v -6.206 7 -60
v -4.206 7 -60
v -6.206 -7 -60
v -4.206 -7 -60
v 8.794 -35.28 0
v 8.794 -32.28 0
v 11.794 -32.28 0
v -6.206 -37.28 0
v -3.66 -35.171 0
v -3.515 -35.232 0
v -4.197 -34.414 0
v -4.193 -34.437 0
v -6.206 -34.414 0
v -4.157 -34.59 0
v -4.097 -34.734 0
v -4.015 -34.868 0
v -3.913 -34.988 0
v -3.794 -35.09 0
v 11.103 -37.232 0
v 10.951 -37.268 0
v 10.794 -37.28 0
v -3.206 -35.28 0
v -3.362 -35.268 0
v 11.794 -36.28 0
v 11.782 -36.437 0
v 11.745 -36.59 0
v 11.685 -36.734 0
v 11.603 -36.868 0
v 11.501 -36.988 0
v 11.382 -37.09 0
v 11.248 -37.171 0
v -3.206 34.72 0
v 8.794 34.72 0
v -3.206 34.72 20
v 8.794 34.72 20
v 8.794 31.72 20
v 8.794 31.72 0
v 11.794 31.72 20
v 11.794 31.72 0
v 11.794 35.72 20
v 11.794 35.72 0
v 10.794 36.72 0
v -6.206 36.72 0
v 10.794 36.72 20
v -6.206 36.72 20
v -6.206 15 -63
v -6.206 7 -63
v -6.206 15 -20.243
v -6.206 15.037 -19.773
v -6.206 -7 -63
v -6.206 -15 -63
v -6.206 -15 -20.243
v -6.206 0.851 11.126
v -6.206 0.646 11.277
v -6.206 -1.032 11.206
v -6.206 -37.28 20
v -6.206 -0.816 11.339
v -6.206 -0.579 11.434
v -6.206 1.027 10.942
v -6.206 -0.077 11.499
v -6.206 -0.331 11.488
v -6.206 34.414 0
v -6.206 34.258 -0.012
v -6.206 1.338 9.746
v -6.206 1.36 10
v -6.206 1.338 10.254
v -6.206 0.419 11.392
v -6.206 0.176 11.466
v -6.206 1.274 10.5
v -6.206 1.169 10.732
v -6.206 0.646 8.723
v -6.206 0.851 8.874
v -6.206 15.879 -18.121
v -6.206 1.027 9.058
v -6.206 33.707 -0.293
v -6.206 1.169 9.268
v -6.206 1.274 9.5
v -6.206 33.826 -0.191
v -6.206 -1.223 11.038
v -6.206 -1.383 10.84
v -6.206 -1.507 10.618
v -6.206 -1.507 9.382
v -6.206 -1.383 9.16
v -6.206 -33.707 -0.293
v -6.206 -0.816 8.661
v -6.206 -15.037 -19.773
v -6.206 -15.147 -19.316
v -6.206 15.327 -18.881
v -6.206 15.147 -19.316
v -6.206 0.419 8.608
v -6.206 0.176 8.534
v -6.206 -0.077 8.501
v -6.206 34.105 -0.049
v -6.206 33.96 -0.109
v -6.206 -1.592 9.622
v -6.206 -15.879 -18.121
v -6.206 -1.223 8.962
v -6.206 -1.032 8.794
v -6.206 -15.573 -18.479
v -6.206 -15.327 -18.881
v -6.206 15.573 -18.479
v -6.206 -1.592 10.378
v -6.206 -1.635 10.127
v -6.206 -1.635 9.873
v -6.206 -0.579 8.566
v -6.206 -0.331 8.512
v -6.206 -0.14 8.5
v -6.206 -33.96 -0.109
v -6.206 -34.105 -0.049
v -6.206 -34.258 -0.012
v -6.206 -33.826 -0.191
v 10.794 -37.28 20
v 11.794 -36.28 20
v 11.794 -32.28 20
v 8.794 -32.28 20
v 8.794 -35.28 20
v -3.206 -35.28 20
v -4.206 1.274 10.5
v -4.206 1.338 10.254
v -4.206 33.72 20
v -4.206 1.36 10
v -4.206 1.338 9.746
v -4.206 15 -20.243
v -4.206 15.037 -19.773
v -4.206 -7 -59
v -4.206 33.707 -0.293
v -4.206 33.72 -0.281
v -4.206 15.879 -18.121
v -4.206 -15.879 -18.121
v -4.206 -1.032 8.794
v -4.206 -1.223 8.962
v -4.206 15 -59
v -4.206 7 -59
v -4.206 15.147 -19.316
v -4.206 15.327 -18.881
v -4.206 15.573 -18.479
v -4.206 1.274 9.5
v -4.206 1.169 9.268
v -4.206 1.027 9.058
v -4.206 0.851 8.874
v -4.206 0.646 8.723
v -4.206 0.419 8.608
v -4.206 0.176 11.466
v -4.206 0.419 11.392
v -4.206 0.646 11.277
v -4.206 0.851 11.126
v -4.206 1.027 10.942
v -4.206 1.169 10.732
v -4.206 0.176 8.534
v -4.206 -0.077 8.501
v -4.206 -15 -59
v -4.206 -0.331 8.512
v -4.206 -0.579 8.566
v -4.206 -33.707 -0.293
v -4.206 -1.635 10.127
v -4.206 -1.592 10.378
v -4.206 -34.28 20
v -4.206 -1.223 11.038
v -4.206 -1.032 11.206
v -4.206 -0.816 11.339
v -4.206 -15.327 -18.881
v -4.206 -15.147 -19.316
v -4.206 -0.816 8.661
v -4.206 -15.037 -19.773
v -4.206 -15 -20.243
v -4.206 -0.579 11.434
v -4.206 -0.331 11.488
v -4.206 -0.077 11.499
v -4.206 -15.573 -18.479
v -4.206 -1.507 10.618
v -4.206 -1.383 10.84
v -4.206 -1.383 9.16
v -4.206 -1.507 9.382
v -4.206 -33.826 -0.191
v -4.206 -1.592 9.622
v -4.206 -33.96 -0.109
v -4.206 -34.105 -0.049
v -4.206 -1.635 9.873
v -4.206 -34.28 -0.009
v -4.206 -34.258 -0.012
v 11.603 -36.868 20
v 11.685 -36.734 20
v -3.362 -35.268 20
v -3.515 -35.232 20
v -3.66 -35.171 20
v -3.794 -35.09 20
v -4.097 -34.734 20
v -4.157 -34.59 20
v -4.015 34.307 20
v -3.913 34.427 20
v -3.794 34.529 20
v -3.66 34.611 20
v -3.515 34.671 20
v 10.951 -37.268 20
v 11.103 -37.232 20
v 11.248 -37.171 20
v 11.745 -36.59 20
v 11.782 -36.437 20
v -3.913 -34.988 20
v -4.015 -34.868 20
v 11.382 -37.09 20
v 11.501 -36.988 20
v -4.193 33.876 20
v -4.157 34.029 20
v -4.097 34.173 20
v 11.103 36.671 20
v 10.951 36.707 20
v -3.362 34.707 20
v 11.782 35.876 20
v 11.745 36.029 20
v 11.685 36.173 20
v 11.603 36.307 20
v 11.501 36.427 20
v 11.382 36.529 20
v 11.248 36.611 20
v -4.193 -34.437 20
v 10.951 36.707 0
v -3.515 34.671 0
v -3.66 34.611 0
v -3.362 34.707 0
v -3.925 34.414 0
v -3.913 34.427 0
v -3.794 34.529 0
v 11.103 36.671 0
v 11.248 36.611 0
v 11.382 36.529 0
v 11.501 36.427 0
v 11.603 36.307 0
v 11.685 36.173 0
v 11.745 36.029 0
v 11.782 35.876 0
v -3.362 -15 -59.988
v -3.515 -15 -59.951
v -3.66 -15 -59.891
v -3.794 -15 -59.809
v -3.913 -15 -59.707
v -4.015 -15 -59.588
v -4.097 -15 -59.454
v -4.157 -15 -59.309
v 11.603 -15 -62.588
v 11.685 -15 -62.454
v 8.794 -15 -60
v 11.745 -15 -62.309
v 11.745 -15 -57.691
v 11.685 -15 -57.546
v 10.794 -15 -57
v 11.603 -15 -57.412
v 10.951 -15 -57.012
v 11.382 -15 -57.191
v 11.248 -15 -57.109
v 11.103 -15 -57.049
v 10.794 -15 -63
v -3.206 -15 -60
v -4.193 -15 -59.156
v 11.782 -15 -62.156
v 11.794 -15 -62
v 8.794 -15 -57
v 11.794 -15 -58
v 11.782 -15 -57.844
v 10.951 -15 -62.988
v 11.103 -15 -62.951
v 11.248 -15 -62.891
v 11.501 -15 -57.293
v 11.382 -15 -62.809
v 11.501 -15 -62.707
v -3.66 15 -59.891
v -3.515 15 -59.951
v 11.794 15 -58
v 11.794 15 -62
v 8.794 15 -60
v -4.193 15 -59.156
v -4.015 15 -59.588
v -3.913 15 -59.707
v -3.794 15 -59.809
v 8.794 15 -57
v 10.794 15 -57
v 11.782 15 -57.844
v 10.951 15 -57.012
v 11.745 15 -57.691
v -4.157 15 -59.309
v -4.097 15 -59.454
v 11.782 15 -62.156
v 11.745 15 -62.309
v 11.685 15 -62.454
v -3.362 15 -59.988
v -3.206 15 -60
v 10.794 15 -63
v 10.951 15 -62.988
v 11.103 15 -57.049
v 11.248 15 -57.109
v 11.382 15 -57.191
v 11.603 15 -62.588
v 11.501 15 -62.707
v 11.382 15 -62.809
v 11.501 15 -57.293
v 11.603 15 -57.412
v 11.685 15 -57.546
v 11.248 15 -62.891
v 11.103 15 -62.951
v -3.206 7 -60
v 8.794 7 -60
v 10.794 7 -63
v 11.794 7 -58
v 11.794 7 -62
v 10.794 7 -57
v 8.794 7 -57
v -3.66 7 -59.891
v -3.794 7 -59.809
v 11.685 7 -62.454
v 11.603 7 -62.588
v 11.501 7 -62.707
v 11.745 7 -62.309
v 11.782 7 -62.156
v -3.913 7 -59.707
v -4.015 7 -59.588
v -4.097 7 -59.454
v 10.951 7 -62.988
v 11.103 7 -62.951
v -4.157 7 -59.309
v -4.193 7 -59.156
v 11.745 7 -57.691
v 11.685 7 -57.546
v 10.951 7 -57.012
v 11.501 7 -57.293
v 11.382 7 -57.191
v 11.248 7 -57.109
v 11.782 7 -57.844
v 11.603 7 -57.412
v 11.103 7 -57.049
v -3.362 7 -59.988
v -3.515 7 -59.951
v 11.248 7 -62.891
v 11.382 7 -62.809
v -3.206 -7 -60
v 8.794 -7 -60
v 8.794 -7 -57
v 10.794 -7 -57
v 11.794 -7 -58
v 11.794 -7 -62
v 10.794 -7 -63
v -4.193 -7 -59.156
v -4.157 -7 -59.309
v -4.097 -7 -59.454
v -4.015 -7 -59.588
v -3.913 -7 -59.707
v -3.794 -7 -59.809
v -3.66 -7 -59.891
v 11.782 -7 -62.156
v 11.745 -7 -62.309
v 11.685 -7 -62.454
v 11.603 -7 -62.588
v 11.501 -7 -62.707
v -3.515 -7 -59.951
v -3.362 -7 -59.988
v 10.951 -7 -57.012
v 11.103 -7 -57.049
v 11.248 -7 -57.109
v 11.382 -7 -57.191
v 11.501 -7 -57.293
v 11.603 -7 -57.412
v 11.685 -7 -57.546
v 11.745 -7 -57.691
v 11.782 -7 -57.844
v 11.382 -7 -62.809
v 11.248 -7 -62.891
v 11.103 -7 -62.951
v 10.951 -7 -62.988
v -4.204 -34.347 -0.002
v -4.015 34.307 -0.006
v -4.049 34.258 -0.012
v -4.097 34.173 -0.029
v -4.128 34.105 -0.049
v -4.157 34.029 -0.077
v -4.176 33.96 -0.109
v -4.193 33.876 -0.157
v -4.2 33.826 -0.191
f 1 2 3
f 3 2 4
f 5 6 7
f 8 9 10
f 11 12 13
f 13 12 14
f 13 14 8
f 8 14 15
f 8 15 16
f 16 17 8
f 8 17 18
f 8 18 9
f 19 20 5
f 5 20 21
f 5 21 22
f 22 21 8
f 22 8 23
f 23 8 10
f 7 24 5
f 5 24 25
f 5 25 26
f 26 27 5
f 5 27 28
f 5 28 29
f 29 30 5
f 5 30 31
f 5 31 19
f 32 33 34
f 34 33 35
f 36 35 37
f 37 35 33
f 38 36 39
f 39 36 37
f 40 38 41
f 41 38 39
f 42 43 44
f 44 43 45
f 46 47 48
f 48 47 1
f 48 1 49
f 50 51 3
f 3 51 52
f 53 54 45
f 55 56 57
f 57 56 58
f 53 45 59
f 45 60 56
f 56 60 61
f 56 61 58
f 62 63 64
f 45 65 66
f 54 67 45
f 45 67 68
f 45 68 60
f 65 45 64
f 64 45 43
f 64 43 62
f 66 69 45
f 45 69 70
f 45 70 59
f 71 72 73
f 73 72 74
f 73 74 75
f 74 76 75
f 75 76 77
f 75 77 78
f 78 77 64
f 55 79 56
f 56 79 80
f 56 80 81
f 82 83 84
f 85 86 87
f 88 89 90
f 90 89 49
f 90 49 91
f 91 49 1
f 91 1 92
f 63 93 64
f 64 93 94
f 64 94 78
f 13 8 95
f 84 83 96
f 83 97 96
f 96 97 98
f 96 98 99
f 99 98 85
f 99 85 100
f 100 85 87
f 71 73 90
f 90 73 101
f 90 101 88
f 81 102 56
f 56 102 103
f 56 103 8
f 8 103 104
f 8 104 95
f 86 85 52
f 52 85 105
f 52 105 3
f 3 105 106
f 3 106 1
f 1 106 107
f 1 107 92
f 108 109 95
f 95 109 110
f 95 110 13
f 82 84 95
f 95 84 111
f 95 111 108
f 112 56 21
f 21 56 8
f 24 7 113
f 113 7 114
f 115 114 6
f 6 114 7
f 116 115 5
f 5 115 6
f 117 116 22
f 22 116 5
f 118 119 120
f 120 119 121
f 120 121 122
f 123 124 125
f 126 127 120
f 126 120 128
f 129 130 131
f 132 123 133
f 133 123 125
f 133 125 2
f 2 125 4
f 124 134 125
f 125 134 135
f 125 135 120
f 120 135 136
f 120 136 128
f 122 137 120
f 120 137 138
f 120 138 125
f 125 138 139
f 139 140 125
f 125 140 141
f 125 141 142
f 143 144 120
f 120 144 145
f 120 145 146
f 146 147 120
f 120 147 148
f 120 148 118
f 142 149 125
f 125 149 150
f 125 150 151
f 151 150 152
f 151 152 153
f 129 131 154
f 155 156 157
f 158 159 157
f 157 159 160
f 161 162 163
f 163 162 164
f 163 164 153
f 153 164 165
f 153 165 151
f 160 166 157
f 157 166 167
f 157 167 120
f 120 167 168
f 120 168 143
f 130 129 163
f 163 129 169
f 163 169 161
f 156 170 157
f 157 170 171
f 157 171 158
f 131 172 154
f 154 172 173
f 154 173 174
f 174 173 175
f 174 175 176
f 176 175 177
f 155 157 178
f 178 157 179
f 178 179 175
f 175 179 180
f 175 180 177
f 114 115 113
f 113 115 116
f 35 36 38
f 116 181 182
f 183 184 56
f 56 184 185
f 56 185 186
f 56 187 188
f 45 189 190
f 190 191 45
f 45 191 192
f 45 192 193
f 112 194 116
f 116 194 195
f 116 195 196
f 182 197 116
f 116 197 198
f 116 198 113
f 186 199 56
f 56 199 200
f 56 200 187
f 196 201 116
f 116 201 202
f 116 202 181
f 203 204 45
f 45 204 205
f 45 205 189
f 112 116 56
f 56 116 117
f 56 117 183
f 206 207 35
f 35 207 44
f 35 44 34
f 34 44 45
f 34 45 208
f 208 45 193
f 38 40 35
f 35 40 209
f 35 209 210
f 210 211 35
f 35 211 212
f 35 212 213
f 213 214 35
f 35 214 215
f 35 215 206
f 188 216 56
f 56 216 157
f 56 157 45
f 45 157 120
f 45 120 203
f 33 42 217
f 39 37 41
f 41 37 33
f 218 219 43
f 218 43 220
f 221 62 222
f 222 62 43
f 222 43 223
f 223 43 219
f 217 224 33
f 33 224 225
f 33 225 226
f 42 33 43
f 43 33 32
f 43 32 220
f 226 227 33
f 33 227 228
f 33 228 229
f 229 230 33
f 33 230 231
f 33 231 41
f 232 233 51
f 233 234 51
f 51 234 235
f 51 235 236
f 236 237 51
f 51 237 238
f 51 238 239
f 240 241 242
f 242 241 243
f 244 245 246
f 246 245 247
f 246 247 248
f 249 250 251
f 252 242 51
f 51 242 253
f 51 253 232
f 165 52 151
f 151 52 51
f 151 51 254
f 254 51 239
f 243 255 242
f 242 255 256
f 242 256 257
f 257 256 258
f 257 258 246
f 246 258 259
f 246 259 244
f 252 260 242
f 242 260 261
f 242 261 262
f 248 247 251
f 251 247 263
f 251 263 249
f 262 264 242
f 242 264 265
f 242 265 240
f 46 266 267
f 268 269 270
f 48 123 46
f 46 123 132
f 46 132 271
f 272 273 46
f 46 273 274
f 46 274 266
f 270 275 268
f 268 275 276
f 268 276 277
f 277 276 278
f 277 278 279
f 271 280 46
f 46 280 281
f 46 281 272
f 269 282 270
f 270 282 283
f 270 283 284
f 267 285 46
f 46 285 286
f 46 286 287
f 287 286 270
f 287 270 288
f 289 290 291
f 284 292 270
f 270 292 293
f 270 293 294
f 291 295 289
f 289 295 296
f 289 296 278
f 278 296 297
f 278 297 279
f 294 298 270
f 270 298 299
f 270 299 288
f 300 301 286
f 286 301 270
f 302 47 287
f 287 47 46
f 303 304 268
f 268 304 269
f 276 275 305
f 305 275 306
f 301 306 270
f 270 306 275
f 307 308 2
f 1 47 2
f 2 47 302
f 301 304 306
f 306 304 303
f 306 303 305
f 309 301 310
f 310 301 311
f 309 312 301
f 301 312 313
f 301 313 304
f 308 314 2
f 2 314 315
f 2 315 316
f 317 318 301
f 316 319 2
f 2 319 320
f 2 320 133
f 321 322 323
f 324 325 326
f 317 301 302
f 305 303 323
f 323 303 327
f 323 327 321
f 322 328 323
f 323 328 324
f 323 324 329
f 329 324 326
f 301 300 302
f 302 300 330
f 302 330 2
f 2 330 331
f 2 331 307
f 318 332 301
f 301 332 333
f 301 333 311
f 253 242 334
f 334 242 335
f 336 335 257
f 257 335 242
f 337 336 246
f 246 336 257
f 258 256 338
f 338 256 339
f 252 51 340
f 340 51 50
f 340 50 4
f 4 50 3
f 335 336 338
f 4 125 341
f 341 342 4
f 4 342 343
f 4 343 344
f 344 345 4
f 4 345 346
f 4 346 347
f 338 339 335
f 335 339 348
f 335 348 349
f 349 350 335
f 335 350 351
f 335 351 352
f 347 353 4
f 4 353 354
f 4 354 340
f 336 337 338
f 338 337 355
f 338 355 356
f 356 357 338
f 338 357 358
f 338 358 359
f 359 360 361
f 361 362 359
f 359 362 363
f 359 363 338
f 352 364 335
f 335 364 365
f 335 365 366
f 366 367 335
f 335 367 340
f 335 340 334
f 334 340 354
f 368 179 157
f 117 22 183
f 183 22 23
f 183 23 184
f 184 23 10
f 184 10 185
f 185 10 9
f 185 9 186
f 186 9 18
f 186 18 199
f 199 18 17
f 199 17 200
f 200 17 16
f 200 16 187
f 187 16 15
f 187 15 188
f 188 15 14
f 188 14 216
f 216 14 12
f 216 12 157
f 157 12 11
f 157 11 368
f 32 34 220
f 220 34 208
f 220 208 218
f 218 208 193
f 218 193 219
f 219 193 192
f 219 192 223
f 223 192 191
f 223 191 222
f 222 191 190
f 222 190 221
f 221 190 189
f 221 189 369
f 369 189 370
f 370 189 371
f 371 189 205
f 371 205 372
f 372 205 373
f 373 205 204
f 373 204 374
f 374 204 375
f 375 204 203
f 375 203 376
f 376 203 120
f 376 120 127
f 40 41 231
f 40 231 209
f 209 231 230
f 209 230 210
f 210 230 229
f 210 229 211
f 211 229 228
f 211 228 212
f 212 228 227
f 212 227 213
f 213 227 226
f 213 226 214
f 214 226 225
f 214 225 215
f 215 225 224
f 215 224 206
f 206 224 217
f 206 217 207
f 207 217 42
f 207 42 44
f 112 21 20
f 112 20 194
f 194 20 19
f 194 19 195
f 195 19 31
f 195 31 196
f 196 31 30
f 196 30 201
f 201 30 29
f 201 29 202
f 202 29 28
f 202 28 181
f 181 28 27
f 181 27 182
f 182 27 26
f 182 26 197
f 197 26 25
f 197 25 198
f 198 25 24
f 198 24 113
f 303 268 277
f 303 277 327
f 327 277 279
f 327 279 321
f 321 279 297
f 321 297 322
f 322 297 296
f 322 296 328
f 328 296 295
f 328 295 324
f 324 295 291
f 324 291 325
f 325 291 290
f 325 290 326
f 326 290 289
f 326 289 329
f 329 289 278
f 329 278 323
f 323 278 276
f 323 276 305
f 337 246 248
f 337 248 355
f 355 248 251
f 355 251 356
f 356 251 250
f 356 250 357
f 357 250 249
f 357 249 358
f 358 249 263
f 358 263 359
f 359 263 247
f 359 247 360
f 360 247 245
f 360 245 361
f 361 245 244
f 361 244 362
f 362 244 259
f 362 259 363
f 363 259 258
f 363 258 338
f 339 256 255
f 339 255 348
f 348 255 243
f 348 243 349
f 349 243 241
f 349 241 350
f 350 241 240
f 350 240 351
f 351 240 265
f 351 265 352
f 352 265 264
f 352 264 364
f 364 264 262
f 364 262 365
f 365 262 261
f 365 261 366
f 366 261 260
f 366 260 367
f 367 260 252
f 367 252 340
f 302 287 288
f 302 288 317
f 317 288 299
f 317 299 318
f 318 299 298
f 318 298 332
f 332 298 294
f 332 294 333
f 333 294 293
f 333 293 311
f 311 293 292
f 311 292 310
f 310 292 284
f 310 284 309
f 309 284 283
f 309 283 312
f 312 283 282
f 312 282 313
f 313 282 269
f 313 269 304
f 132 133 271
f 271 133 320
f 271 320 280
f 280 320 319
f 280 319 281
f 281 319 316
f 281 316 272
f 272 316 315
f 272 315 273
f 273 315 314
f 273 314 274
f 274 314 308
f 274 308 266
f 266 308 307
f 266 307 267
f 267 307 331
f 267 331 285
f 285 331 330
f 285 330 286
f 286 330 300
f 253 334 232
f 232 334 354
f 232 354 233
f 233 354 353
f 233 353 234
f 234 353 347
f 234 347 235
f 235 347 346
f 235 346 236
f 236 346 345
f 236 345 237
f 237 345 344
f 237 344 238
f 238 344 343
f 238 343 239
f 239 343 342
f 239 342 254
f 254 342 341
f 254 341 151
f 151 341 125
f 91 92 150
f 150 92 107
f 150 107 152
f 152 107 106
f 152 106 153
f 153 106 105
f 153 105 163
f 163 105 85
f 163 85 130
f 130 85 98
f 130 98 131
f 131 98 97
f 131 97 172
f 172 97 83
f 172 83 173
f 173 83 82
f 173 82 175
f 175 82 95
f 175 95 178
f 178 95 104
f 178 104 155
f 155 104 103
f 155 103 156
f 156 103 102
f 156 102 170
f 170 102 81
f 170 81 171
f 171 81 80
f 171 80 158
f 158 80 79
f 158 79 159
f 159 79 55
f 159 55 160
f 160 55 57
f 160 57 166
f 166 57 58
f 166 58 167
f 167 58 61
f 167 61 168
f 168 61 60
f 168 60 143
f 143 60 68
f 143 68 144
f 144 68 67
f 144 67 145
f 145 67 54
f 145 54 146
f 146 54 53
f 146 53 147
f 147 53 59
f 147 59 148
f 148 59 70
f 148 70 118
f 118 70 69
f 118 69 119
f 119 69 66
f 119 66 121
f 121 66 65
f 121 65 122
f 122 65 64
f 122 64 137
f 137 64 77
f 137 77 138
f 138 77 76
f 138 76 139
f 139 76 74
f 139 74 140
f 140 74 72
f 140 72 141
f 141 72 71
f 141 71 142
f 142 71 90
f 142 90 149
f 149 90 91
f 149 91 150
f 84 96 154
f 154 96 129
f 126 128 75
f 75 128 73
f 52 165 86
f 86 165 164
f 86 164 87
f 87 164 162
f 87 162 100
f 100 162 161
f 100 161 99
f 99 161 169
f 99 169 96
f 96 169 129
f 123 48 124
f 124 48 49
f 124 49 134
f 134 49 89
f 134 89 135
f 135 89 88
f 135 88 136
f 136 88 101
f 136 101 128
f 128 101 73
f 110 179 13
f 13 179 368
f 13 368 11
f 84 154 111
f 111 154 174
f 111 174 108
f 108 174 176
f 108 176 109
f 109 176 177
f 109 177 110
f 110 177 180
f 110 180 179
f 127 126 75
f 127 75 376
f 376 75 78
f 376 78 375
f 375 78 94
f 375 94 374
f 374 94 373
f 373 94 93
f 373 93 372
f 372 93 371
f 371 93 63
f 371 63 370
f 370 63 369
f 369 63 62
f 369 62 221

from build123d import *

# Parameters (mm, degrees)
RESSALTO_EXTRUS_O1_DEPTH = 20
ESBO_O2_W                = 2
ESBO_O2_H                = 30
RESSALTO_EXTRUS_O2_DEPTH = 60
RESSALTO_EXTRUS_O3_DEPTH = 8
FILETE1_R                = 1
ESBO_O4_R                = 1.5
CORTE_EXTRUS_O1_DEPTH    = 8
CHANFRO1_SIZE            = 19
FILETE2_R                = 3
FILETE3_R                = 1


with BuildPart() as part:
    # Esboço1 → Ressalto-extrusão1 (new body)
    with BuildSketch(Plane.XY):
        Polygon((-4.205798406, -35.280489631), (-4.205798406, 34.719510369), (8.794201594, 34.719510369), (8.794201594, 31.719510369), (11.794201594, 31.719510369), (11.794201594, 36.719510369), (-6.205798406, 36.719510369), (-6.205798406, -37.280489631), (11.794201594, -37.280489631), (11.794201594, -32.280489631), (8.794201594, -32.280489631), (8.794201594, -35.280489631), align=None)
    extrude(amount=RESSALTO_EXTRUS_O1_DEPTH)

    # Esboço2 → Ressalto-extrusão2 (add)
    with BuildSketch(Plane(origin=(0, 0, 0), x_dir=(-1, 0, 0), z_dir=(0, 0, -1))):
        with Locations((5.205798406, 0)):
            Rectangle(ESBO_O2_W, ESBO_O2_H)
    extrude(amount=RESSALTO_EXTRUS_O2_DEPTH)

    # Esboço3 → Ressalto-extrusão3 (add)
    with BuildSketch(Plane(origin=(0, 15, 0), x_dir=(1, 0, 0), z_dir=(0, 1, 0))):
        Polygon((-6.205798406, 60), (-6.205798406, 63), (11.794201594, 63), (11.794201594, 57), (8.794201594, 57), (8.794201594, 60), align=None)
    ressalto_extrus_o3 = extrude(amount=-RESSALTO_EXTRUS_O3_DEPTH)

    # Espelhar1: Ressalto-extrusão3 across plane
    add(ressalto_extrus_o3.mirror(Plane.ZX))

    # Filete1
    filete1_edges = [part.edges().sort_by_distance(p)[0] for p in [
        (-4.205798406, 34.719510369, 10),
        (-4.205798406, -35.280489631, 10),
        (11.794201594, -37.280489631, 10),
        (11.794201594, 36.719510369, 10),
        (-4.205798406, 11, -60),
        (11.794201594, 11, -63),
        (11.794201594, 11, -57),
        (-4.205798406, -11, -60),
        (11.794201594, -11, -57),
        (11.794201594, -11, -63),
    ]]
    fillet(filete1_edges, radius=FILETE1_R)

    # Esboço4 → Corte-extrusão1 (cut)
    with BuildSketch(Plane(origin=(-4.205798406, 0, 0), x_dir=(0, 0, -1), z_dir=(1, 0, 0))):
        with Locations(Location((-10, -0.140244815, 0), (0, 0, 90))):
            Circle(ESBO_O4_R)
    extrude(amount=-CORTE_EXTRUS_O1_DEPTH, mode=Mode.SUBTRACT)

    # Chanfro1
    chanfro1_edges = [part.edges().sort_by_distance(p)[0] for p in [
        (-5.205798406, -15, 0),
        (-5.205798406, 15, 0),
    ]]
    chamfer(chanfro1_edges, length=CHANFRO1_SIZE)

    # Filete2
    filete2_edges = [part.edges().sort_by_distance(p)[0] for p in [
        (-5.205798406, -15, -19),
        (-5.205798406, 15, -19),
    ]]
    fillet(filete2_edges, radius=FILETE2_R)

    # Filete3
    filete3_edges = [part.edges().sort_by_distance(p)[0] for p in [
        (-5.205798406, -34, 0),
        (-5.185726934, 34, 0),
    ]]
    fillet(filete3_edges, radius=FILETE3_R)


solid = part.part
